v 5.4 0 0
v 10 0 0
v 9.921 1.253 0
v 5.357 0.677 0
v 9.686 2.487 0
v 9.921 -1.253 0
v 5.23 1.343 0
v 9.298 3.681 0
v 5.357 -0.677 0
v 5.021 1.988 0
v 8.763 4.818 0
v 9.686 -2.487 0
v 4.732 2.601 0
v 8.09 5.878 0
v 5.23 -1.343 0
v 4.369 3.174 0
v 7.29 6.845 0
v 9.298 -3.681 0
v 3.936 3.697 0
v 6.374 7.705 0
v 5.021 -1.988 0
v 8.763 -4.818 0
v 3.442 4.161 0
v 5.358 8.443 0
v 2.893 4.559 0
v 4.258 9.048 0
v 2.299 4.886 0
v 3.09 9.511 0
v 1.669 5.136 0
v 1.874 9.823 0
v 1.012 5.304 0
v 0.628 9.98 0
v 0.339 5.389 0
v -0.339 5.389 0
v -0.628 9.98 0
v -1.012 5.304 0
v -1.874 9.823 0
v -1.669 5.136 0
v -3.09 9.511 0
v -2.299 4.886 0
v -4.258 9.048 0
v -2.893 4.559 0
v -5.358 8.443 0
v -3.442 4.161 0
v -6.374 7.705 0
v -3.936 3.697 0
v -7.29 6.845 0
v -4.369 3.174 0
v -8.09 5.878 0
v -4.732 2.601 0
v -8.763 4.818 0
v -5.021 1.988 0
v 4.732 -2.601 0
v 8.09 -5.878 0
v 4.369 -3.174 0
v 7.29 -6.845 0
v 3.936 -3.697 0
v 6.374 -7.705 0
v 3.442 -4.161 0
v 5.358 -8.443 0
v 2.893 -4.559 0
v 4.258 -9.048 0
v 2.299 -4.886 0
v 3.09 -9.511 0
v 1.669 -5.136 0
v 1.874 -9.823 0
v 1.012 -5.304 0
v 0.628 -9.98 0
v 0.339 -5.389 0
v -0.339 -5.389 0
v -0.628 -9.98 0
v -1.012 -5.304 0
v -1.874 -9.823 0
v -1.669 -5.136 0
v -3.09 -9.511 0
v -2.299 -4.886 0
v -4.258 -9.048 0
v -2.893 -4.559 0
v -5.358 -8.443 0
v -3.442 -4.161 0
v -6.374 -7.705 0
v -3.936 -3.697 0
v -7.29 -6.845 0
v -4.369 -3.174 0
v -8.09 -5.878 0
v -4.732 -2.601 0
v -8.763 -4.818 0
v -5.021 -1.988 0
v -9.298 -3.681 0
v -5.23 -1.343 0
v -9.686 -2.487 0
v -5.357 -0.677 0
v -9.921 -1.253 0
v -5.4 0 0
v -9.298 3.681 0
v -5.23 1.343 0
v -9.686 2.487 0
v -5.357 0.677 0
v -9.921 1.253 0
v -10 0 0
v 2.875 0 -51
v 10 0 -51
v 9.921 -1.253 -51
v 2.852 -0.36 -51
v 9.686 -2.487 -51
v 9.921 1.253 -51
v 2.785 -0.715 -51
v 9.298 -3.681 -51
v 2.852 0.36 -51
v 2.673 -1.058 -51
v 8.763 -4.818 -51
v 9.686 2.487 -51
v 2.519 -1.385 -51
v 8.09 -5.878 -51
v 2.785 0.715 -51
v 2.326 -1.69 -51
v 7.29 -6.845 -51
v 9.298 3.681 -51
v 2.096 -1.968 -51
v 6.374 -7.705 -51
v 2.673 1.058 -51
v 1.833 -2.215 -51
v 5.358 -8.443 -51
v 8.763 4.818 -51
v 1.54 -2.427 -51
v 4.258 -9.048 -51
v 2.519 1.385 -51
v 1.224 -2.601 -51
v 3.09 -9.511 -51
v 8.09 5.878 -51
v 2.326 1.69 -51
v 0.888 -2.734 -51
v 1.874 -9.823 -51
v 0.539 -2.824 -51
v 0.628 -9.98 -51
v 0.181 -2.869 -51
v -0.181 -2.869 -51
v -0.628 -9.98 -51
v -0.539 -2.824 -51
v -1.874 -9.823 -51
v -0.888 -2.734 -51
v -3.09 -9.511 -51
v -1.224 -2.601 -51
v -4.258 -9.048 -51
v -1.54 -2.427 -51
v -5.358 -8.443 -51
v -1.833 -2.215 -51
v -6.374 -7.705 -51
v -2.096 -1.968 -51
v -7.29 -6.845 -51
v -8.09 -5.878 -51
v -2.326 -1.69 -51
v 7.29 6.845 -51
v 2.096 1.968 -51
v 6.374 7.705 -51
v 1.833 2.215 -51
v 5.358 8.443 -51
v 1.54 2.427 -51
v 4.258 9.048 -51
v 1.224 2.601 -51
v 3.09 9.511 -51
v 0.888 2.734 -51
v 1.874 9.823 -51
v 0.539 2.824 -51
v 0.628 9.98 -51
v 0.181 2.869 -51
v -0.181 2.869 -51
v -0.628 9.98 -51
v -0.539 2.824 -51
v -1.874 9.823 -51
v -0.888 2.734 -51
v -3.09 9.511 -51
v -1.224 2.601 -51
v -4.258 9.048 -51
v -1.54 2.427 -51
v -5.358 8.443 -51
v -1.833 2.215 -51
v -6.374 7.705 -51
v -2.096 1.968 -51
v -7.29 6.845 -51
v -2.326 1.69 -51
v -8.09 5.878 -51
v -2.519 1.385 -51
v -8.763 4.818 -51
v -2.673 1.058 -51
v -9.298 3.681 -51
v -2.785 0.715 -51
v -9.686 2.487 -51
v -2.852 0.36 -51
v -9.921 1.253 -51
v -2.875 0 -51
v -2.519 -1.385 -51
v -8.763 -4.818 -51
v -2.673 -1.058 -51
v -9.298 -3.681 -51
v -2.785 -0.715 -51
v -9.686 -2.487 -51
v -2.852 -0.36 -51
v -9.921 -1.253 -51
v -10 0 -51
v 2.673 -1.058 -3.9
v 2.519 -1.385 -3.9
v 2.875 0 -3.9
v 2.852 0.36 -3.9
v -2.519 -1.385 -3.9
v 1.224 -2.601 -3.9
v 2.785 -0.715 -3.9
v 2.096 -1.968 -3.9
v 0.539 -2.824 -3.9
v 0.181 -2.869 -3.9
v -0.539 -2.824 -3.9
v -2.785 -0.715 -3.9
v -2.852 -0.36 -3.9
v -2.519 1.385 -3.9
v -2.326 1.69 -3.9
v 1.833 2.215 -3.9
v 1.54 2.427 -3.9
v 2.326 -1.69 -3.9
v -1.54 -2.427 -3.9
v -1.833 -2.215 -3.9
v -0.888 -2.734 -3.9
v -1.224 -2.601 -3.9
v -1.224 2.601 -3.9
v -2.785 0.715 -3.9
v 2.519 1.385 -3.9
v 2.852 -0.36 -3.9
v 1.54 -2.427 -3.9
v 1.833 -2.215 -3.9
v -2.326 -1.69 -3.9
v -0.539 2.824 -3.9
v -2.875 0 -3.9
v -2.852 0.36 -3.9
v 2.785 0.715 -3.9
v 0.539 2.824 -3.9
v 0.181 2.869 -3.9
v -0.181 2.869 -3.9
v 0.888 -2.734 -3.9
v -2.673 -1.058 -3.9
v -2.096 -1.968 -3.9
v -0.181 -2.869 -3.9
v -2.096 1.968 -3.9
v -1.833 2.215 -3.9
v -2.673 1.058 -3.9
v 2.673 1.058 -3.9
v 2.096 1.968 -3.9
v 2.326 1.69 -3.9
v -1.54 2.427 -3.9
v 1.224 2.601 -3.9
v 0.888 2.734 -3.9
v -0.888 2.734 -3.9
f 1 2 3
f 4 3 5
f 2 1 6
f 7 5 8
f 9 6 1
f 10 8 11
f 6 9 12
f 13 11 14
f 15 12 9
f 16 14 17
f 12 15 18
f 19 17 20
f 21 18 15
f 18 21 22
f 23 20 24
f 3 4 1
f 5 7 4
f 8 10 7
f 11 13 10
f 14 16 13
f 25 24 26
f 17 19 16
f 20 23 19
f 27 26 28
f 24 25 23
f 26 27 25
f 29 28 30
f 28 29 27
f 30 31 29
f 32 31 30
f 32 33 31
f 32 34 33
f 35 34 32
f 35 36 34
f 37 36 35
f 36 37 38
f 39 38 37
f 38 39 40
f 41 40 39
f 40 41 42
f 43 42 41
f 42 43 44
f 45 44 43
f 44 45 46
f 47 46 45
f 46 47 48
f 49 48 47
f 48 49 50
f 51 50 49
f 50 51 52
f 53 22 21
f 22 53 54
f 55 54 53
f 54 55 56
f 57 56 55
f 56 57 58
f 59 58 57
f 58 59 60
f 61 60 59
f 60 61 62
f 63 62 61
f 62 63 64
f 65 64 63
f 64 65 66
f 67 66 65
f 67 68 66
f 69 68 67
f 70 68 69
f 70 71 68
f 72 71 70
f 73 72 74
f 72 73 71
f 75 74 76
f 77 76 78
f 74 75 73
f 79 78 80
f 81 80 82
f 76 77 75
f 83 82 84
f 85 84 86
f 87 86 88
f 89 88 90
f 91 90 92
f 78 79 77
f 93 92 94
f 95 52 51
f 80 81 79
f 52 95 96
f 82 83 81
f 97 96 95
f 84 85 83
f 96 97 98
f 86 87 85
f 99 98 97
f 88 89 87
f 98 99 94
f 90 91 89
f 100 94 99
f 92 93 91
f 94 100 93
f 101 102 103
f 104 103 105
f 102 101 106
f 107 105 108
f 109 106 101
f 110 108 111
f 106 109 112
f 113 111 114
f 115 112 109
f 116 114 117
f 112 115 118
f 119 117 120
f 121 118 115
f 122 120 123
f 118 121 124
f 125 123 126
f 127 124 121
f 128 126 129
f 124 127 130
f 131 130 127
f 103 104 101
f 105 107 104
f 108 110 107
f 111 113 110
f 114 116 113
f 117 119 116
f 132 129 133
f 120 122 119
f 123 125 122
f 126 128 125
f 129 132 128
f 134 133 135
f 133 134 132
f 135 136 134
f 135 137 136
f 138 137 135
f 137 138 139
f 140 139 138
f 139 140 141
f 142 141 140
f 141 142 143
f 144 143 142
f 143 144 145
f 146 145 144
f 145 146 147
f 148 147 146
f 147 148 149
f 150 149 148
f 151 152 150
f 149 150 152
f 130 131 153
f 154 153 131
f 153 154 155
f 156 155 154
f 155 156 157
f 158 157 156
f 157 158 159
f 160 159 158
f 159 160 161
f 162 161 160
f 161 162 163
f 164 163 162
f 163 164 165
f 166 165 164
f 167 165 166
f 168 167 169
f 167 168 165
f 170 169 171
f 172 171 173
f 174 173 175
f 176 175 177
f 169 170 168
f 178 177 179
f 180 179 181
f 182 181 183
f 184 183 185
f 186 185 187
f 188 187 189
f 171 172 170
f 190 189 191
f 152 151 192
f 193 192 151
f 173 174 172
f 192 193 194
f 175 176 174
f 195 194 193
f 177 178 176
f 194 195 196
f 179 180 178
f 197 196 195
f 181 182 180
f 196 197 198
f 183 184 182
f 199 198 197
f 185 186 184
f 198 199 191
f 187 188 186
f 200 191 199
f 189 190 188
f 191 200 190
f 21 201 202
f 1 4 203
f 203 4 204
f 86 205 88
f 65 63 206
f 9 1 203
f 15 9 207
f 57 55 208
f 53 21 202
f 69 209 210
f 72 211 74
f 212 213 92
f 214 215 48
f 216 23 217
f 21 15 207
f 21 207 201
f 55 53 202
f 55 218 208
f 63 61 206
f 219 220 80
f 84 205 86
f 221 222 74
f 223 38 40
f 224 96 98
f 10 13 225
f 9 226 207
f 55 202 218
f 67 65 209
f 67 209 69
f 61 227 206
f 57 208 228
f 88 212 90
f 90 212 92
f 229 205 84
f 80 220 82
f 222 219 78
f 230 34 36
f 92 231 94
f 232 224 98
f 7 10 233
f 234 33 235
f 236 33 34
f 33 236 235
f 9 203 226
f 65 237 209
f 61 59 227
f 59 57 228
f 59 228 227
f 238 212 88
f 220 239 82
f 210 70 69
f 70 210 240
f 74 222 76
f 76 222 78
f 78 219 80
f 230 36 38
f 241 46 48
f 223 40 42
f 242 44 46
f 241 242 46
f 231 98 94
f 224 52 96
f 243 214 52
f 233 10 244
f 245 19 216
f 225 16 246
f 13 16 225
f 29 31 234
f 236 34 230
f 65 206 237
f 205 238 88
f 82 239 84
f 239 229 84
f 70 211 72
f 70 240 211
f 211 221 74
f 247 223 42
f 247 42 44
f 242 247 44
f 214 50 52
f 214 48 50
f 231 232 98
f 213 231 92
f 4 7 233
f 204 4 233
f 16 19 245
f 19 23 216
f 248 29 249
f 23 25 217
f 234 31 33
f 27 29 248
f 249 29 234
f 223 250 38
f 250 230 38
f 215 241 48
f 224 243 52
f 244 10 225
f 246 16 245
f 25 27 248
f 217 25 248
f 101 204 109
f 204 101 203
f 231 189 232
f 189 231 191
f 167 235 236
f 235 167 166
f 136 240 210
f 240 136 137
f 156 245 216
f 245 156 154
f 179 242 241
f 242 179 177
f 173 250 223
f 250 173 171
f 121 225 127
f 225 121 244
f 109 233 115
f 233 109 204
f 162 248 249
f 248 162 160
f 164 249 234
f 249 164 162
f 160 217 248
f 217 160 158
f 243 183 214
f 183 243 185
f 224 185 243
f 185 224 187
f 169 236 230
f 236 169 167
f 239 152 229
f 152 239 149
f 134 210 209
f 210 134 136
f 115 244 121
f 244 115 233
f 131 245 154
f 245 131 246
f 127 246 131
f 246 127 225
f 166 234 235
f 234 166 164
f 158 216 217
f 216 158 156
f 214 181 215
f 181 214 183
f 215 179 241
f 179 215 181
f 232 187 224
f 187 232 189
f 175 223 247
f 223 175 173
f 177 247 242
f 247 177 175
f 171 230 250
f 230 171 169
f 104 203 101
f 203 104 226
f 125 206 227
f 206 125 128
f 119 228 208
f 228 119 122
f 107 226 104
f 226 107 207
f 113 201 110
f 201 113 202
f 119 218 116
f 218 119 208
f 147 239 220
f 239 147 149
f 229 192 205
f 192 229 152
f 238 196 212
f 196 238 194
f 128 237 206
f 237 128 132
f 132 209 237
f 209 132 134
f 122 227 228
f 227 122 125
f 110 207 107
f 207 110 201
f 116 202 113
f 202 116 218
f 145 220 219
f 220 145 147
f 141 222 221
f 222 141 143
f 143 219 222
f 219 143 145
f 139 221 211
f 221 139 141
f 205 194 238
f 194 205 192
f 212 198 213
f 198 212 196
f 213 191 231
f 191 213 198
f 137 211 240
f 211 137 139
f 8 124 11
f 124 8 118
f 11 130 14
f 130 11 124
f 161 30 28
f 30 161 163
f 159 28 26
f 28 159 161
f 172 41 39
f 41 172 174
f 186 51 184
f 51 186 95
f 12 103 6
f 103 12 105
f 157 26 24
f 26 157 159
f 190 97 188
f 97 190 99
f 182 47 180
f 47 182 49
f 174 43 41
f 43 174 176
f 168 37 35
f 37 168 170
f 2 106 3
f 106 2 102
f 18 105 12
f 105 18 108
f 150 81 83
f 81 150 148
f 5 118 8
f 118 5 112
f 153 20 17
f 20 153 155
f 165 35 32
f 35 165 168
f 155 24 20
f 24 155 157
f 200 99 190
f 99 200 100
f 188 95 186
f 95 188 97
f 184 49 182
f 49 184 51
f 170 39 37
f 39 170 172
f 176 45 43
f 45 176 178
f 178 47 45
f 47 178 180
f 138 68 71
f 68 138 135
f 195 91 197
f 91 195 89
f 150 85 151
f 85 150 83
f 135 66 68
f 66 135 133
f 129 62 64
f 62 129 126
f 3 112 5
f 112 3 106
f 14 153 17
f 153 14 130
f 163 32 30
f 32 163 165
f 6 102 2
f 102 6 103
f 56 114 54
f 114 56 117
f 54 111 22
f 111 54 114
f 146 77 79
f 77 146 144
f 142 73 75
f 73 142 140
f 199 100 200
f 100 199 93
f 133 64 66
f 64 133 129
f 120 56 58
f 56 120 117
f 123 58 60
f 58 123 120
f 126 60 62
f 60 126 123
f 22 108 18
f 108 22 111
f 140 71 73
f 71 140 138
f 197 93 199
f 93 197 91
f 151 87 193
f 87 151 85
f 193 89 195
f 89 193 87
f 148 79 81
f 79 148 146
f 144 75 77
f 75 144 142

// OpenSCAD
$fn = 50;


difference() {
	union() {
		translate(v = [0, 0, -51.0000000000]) {
			cylinder(h = 51, r = 10.0000000000);
		}
		cylinder(h = 0, r = 16.0000000000);
	}
	union() {
		translate(v = [0, 0, 0]) {
			rotate(a = [0, 0, 0]) {
				difference() {
					union() {
						#translate(v = [0, 0, -51.0000000000]) {
							cylinder(h = 51, r = 2.6000000000);
						}
						#translate(v = [0, 0, -3.9000000000]) {
							cylinder(h = 3.9000000000, r = 10.0000000000, r1 = 2.8750000000, r2 = 5.4000000000);
						}
						#translate(v = [0, 0, -51.0000000000]) {
							cylinder(h = 51, r = 2.8750000000);
						}
						#translate(v = [0, 0, -51.0000000000]) {
							cylinder(h = 51, r = 2.6000000000);
						}
					}
					union();
				}
			}
		}
	}
}
